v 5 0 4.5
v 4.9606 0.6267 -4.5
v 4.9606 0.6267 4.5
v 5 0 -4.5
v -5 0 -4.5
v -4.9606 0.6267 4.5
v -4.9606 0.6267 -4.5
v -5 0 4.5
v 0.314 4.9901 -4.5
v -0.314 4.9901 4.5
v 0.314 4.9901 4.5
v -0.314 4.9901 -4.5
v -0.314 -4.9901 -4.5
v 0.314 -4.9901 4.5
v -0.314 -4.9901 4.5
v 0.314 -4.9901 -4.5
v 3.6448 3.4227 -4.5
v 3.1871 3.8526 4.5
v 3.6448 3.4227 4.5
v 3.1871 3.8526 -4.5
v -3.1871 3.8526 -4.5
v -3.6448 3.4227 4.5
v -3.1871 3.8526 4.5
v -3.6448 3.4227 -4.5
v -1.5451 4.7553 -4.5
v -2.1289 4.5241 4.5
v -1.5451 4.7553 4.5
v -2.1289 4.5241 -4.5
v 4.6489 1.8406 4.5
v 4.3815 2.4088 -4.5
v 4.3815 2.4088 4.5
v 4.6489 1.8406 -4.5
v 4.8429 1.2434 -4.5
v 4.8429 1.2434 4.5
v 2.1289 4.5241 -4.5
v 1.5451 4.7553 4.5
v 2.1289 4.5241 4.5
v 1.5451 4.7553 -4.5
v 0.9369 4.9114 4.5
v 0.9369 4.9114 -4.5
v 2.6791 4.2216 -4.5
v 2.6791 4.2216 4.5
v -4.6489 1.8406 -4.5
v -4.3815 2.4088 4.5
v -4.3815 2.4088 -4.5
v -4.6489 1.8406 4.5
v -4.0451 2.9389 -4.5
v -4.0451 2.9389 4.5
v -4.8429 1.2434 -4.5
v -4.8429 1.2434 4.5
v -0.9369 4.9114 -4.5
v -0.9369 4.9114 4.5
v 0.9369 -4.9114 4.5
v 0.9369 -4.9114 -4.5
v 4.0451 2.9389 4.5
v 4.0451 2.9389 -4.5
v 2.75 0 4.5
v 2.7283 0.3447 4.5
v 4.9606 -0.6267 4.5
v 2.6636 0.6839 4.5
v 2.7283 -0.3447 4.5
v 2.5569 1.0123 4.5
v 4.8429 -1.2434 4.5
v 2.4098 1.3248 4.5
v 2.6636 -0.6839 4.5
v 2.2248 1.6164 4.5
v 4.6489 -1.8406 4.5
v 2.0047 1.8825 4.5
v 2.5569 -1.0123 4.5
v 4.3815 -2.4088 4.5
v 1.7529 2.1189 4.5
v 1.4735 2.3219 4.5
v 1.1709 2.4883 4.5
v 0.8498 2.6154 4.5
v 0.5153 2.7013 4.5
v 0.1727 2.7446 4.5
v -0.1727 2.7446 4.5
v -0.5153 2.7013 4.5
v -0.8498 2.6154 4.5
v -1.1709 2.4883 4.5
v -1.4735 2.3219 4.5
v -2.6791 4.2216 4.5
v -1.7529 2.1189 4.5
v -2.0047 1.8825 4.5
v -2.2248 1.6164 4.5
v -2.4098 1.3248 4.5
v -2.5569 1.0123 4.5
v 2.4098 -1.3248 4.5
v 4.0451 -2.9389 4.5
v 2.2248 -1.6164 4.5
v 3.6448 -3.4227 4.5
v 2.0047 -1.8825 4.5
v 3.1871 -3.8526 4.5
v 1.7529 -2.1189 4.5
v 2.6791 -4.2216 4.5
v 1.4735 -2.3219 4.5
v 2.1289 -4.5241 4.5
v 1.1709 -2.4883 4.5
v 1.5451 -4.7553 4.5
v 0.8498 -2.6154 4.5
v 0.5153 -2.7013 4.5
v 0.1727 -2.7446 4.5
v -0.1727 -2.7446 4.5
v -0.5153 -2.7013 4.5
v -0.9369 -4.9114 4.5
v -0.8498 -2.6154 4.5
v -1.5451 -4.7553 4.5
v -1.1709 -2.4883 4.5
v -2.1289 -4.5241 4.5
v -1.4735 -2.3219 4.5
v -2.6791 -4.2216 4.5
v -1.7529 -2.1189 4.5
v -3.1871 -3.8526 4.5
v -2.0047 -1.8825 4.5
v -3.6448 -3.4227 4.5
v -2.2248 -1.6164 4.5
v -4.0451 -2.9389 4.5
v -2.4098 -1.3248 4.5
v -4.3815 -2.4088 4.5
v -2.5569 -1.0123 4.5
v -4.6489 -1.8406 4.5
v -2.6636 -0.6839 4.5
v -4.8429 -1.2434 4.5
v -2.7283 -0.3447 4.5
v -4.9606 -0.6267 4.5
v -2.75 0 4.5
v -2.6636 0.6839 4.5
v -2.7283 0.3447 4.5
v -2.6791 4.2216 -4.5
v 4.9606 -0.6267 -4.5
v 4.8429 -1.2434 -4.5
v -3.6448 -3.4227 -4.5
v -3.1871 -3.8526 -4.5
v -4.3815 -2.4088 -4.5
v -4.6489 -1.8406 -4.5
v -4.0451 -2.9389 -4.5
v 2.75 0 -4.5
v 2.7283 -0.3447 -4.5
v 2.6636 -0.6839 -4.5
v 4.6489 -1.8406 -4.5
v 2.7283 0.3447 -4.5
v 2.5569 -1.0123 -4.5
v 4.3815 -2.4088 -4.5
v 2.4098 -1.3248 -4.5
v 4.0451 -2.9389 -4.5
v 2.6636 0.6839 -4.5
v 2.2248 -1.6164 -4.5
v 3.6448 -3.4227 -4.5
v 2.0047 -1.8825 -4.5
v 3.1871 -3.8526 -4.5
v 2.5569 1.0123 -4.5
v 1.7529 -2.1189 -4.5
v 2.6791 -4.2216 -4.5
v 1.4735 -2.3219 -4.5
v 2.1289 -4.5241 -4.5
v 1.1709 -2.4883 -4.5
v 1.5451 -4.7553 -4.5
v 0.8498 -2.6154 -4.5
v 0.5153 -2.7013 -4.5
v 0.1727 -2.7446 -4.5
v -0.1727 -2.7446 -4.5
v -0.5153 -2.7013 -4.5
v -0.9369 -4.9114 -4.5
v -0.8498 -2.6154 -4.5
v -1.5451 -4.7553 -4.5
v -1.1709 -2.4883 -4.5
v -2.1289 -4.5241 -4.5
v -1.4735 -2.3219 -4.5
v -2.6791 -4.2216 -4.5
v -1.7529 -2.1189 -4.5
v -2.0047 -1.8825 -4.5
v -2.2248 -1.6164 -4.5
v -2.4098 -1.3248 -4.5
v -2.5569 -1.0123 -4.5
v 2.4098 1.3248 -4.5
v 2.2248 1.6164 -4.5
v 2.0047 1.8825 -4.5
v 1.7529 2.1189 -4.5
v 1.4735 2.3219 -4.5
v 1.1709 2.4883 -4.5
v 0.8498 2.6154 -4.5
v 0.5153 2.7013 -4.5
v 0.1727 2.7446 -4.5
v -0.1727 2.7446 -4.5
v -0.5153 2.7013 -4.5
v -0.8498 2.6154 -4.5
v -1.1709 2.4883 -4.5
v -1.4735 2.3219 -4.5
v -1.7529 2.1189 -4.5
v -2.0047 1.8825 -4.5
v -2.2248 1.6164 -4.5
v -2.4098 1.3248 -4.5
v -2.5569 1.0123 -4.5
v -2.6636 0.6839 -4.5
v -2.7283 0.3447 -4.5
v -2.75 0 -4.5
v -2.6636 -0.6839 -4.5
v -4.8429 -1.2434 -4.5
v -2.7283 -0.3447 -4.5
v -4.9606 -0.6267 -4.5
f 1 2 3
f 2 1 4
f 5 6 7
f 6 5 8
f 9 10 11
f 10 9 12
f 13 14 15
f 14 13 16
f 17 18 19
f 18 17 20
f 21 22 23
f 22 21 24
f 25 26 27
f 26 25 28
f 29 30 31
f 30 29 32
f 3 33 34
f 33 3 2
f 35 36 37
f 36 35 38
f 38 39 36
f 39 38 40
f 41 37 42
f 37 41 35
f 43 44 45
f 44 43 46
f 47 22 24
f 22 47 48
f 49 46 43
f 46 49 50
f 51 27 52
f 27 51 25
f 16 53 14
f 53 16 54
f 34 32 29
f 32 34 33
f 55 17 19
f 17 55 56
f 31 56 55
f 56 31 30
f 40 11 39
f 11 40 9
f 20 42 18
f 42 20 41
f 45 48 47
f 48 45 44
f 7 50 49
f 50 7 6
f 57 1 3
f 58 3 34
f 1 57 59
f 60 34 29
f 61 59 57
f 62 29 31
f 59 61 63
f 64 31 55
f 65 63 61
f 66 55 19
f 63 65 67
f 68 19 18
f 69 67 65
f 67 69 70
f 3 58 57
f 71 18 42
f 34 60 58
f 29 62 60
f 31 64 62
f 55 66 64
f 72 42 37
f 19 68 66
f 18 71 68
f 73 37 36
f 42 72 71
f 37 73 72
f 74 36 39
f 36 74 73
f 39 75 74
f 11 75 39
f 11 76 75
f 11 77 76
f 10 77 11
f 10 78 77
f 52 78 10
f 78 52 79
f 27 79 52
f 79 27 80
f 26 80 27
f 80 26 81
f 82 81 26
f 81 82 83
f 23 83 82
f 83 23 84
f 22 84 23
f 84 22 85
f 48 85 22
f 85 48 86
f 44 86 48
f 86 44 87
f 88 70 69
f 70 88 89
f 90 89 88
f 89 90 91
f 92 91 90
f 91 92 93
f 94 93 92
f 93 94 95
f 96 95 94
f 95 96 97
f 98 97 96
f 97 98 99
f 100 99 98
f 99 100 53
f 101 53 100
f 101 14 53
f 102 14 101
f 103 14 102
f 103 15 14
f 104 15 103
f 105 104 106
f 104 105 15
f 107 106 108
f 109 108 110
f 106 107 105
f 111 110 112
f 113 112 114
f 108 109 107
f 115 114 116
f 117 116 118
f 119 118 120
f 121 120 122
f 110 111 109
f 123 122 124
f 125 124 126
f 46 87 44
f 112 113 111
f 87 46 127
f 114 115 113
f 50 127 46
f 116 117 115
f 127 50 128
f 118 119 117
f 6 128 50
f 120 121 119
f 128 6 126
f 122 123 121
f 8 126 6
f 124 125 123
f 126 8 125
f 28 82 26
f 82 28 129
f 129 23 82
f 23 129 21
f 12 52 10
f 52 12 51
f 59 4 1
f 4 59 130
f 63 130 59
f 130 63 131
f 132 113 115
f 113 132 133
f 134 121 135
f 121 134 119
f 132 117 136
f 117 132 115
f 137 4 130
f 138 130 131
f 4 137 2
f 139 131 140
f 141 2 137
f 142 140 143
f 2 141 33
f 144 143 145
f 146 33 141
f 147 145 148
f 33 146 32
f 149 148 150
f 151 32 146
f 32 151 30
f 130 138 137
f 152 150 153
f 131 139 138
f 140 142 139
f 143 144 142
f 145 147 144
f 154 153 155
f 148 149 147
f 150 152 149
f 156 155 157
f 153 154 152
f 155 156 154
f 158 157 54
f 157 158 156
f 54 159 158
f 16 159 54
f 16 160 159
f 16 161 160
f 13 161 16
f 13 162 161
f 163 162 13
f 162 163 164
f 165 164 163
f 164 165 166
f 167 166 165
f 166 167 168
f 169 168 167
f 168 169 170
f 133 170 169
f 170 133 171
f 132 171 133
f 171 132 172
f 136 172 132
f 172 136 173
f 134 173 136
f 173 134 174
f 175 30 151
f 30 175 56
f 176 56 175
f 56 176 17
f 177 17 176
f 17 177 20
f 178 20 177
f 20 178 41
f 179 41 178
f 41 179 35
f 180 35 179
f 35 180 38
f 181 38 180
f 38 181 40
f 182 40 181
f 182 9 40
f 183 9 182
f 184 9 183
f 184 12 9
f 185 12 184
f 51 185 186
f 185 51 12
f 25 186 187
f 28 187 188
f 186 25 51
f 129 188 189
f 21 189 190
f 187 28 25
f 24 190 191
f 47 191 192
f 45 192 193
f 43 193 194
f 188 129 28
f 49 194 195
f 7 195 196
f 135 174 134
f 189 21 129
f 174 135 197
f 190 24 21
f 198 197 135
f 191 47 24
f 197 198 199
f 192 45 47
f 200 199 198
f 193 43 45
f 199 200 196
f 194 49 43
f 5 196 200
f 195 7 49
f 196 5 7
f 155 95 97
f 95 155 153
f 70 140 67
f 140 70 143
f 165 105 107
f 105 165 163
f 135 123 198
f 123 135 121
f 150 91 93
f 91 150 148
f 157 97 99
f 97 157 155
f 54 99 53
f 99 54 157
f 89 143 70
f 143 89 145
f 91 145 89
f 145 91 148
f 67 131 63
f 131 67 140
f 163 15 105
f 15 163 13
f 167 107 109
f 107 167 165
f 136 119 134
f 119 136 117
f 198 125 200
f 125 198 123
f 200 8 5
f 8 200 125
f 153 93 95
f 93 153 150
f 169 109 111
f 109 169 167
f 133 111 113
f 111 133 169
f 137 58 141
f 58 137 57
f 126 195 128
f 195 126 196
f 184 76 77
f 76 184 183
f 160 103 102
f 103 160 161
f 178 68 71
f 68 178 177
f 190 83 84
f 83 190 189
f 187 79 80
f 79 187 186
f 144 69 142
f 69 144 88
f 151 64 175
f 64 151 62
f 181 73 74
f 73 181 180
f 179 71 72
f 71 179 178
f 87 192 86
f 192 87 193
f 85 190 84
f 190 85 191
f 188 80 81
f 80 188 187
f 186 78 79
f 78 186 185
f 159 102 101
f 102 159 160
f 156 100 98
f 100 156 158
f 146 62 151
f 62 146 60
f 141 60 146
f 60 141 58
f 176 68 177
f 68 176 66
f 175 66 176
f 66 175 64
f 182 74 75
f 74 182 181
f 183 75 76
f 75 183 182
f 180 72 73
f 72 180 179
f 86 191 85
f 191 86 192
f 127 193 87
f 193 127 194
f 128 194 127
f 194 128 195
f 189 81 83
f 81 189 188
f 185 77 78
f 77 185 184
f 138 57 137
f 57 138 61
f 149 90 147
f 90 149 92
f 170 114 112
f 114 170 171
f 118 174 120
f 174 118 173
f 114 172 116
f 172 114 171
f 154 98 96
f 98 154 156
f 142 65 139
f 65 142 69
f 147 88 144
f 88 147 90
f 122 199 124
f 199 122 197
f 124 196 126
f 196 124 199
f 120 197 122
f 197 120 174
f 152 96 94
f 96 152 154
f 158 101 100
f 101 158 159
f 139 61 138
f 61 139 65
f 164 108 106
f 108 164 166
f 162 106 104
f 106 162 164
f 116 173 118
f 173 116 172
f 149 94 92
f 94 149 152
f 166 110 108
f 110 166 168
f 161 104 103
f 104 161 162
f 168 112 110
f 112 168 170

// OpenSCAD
$fn = 50;


difference() {
	union() {
		translate(v = [0, 0, -4.5000000000]) {
			cylinder(h = 9, r = 5.0000000000);
		}
	}
	union() {
		translate(v = [0, 0, -100.0000000000]) {
			cylinder(h = 200, r = 2.7500000000);
		}
	}
}
